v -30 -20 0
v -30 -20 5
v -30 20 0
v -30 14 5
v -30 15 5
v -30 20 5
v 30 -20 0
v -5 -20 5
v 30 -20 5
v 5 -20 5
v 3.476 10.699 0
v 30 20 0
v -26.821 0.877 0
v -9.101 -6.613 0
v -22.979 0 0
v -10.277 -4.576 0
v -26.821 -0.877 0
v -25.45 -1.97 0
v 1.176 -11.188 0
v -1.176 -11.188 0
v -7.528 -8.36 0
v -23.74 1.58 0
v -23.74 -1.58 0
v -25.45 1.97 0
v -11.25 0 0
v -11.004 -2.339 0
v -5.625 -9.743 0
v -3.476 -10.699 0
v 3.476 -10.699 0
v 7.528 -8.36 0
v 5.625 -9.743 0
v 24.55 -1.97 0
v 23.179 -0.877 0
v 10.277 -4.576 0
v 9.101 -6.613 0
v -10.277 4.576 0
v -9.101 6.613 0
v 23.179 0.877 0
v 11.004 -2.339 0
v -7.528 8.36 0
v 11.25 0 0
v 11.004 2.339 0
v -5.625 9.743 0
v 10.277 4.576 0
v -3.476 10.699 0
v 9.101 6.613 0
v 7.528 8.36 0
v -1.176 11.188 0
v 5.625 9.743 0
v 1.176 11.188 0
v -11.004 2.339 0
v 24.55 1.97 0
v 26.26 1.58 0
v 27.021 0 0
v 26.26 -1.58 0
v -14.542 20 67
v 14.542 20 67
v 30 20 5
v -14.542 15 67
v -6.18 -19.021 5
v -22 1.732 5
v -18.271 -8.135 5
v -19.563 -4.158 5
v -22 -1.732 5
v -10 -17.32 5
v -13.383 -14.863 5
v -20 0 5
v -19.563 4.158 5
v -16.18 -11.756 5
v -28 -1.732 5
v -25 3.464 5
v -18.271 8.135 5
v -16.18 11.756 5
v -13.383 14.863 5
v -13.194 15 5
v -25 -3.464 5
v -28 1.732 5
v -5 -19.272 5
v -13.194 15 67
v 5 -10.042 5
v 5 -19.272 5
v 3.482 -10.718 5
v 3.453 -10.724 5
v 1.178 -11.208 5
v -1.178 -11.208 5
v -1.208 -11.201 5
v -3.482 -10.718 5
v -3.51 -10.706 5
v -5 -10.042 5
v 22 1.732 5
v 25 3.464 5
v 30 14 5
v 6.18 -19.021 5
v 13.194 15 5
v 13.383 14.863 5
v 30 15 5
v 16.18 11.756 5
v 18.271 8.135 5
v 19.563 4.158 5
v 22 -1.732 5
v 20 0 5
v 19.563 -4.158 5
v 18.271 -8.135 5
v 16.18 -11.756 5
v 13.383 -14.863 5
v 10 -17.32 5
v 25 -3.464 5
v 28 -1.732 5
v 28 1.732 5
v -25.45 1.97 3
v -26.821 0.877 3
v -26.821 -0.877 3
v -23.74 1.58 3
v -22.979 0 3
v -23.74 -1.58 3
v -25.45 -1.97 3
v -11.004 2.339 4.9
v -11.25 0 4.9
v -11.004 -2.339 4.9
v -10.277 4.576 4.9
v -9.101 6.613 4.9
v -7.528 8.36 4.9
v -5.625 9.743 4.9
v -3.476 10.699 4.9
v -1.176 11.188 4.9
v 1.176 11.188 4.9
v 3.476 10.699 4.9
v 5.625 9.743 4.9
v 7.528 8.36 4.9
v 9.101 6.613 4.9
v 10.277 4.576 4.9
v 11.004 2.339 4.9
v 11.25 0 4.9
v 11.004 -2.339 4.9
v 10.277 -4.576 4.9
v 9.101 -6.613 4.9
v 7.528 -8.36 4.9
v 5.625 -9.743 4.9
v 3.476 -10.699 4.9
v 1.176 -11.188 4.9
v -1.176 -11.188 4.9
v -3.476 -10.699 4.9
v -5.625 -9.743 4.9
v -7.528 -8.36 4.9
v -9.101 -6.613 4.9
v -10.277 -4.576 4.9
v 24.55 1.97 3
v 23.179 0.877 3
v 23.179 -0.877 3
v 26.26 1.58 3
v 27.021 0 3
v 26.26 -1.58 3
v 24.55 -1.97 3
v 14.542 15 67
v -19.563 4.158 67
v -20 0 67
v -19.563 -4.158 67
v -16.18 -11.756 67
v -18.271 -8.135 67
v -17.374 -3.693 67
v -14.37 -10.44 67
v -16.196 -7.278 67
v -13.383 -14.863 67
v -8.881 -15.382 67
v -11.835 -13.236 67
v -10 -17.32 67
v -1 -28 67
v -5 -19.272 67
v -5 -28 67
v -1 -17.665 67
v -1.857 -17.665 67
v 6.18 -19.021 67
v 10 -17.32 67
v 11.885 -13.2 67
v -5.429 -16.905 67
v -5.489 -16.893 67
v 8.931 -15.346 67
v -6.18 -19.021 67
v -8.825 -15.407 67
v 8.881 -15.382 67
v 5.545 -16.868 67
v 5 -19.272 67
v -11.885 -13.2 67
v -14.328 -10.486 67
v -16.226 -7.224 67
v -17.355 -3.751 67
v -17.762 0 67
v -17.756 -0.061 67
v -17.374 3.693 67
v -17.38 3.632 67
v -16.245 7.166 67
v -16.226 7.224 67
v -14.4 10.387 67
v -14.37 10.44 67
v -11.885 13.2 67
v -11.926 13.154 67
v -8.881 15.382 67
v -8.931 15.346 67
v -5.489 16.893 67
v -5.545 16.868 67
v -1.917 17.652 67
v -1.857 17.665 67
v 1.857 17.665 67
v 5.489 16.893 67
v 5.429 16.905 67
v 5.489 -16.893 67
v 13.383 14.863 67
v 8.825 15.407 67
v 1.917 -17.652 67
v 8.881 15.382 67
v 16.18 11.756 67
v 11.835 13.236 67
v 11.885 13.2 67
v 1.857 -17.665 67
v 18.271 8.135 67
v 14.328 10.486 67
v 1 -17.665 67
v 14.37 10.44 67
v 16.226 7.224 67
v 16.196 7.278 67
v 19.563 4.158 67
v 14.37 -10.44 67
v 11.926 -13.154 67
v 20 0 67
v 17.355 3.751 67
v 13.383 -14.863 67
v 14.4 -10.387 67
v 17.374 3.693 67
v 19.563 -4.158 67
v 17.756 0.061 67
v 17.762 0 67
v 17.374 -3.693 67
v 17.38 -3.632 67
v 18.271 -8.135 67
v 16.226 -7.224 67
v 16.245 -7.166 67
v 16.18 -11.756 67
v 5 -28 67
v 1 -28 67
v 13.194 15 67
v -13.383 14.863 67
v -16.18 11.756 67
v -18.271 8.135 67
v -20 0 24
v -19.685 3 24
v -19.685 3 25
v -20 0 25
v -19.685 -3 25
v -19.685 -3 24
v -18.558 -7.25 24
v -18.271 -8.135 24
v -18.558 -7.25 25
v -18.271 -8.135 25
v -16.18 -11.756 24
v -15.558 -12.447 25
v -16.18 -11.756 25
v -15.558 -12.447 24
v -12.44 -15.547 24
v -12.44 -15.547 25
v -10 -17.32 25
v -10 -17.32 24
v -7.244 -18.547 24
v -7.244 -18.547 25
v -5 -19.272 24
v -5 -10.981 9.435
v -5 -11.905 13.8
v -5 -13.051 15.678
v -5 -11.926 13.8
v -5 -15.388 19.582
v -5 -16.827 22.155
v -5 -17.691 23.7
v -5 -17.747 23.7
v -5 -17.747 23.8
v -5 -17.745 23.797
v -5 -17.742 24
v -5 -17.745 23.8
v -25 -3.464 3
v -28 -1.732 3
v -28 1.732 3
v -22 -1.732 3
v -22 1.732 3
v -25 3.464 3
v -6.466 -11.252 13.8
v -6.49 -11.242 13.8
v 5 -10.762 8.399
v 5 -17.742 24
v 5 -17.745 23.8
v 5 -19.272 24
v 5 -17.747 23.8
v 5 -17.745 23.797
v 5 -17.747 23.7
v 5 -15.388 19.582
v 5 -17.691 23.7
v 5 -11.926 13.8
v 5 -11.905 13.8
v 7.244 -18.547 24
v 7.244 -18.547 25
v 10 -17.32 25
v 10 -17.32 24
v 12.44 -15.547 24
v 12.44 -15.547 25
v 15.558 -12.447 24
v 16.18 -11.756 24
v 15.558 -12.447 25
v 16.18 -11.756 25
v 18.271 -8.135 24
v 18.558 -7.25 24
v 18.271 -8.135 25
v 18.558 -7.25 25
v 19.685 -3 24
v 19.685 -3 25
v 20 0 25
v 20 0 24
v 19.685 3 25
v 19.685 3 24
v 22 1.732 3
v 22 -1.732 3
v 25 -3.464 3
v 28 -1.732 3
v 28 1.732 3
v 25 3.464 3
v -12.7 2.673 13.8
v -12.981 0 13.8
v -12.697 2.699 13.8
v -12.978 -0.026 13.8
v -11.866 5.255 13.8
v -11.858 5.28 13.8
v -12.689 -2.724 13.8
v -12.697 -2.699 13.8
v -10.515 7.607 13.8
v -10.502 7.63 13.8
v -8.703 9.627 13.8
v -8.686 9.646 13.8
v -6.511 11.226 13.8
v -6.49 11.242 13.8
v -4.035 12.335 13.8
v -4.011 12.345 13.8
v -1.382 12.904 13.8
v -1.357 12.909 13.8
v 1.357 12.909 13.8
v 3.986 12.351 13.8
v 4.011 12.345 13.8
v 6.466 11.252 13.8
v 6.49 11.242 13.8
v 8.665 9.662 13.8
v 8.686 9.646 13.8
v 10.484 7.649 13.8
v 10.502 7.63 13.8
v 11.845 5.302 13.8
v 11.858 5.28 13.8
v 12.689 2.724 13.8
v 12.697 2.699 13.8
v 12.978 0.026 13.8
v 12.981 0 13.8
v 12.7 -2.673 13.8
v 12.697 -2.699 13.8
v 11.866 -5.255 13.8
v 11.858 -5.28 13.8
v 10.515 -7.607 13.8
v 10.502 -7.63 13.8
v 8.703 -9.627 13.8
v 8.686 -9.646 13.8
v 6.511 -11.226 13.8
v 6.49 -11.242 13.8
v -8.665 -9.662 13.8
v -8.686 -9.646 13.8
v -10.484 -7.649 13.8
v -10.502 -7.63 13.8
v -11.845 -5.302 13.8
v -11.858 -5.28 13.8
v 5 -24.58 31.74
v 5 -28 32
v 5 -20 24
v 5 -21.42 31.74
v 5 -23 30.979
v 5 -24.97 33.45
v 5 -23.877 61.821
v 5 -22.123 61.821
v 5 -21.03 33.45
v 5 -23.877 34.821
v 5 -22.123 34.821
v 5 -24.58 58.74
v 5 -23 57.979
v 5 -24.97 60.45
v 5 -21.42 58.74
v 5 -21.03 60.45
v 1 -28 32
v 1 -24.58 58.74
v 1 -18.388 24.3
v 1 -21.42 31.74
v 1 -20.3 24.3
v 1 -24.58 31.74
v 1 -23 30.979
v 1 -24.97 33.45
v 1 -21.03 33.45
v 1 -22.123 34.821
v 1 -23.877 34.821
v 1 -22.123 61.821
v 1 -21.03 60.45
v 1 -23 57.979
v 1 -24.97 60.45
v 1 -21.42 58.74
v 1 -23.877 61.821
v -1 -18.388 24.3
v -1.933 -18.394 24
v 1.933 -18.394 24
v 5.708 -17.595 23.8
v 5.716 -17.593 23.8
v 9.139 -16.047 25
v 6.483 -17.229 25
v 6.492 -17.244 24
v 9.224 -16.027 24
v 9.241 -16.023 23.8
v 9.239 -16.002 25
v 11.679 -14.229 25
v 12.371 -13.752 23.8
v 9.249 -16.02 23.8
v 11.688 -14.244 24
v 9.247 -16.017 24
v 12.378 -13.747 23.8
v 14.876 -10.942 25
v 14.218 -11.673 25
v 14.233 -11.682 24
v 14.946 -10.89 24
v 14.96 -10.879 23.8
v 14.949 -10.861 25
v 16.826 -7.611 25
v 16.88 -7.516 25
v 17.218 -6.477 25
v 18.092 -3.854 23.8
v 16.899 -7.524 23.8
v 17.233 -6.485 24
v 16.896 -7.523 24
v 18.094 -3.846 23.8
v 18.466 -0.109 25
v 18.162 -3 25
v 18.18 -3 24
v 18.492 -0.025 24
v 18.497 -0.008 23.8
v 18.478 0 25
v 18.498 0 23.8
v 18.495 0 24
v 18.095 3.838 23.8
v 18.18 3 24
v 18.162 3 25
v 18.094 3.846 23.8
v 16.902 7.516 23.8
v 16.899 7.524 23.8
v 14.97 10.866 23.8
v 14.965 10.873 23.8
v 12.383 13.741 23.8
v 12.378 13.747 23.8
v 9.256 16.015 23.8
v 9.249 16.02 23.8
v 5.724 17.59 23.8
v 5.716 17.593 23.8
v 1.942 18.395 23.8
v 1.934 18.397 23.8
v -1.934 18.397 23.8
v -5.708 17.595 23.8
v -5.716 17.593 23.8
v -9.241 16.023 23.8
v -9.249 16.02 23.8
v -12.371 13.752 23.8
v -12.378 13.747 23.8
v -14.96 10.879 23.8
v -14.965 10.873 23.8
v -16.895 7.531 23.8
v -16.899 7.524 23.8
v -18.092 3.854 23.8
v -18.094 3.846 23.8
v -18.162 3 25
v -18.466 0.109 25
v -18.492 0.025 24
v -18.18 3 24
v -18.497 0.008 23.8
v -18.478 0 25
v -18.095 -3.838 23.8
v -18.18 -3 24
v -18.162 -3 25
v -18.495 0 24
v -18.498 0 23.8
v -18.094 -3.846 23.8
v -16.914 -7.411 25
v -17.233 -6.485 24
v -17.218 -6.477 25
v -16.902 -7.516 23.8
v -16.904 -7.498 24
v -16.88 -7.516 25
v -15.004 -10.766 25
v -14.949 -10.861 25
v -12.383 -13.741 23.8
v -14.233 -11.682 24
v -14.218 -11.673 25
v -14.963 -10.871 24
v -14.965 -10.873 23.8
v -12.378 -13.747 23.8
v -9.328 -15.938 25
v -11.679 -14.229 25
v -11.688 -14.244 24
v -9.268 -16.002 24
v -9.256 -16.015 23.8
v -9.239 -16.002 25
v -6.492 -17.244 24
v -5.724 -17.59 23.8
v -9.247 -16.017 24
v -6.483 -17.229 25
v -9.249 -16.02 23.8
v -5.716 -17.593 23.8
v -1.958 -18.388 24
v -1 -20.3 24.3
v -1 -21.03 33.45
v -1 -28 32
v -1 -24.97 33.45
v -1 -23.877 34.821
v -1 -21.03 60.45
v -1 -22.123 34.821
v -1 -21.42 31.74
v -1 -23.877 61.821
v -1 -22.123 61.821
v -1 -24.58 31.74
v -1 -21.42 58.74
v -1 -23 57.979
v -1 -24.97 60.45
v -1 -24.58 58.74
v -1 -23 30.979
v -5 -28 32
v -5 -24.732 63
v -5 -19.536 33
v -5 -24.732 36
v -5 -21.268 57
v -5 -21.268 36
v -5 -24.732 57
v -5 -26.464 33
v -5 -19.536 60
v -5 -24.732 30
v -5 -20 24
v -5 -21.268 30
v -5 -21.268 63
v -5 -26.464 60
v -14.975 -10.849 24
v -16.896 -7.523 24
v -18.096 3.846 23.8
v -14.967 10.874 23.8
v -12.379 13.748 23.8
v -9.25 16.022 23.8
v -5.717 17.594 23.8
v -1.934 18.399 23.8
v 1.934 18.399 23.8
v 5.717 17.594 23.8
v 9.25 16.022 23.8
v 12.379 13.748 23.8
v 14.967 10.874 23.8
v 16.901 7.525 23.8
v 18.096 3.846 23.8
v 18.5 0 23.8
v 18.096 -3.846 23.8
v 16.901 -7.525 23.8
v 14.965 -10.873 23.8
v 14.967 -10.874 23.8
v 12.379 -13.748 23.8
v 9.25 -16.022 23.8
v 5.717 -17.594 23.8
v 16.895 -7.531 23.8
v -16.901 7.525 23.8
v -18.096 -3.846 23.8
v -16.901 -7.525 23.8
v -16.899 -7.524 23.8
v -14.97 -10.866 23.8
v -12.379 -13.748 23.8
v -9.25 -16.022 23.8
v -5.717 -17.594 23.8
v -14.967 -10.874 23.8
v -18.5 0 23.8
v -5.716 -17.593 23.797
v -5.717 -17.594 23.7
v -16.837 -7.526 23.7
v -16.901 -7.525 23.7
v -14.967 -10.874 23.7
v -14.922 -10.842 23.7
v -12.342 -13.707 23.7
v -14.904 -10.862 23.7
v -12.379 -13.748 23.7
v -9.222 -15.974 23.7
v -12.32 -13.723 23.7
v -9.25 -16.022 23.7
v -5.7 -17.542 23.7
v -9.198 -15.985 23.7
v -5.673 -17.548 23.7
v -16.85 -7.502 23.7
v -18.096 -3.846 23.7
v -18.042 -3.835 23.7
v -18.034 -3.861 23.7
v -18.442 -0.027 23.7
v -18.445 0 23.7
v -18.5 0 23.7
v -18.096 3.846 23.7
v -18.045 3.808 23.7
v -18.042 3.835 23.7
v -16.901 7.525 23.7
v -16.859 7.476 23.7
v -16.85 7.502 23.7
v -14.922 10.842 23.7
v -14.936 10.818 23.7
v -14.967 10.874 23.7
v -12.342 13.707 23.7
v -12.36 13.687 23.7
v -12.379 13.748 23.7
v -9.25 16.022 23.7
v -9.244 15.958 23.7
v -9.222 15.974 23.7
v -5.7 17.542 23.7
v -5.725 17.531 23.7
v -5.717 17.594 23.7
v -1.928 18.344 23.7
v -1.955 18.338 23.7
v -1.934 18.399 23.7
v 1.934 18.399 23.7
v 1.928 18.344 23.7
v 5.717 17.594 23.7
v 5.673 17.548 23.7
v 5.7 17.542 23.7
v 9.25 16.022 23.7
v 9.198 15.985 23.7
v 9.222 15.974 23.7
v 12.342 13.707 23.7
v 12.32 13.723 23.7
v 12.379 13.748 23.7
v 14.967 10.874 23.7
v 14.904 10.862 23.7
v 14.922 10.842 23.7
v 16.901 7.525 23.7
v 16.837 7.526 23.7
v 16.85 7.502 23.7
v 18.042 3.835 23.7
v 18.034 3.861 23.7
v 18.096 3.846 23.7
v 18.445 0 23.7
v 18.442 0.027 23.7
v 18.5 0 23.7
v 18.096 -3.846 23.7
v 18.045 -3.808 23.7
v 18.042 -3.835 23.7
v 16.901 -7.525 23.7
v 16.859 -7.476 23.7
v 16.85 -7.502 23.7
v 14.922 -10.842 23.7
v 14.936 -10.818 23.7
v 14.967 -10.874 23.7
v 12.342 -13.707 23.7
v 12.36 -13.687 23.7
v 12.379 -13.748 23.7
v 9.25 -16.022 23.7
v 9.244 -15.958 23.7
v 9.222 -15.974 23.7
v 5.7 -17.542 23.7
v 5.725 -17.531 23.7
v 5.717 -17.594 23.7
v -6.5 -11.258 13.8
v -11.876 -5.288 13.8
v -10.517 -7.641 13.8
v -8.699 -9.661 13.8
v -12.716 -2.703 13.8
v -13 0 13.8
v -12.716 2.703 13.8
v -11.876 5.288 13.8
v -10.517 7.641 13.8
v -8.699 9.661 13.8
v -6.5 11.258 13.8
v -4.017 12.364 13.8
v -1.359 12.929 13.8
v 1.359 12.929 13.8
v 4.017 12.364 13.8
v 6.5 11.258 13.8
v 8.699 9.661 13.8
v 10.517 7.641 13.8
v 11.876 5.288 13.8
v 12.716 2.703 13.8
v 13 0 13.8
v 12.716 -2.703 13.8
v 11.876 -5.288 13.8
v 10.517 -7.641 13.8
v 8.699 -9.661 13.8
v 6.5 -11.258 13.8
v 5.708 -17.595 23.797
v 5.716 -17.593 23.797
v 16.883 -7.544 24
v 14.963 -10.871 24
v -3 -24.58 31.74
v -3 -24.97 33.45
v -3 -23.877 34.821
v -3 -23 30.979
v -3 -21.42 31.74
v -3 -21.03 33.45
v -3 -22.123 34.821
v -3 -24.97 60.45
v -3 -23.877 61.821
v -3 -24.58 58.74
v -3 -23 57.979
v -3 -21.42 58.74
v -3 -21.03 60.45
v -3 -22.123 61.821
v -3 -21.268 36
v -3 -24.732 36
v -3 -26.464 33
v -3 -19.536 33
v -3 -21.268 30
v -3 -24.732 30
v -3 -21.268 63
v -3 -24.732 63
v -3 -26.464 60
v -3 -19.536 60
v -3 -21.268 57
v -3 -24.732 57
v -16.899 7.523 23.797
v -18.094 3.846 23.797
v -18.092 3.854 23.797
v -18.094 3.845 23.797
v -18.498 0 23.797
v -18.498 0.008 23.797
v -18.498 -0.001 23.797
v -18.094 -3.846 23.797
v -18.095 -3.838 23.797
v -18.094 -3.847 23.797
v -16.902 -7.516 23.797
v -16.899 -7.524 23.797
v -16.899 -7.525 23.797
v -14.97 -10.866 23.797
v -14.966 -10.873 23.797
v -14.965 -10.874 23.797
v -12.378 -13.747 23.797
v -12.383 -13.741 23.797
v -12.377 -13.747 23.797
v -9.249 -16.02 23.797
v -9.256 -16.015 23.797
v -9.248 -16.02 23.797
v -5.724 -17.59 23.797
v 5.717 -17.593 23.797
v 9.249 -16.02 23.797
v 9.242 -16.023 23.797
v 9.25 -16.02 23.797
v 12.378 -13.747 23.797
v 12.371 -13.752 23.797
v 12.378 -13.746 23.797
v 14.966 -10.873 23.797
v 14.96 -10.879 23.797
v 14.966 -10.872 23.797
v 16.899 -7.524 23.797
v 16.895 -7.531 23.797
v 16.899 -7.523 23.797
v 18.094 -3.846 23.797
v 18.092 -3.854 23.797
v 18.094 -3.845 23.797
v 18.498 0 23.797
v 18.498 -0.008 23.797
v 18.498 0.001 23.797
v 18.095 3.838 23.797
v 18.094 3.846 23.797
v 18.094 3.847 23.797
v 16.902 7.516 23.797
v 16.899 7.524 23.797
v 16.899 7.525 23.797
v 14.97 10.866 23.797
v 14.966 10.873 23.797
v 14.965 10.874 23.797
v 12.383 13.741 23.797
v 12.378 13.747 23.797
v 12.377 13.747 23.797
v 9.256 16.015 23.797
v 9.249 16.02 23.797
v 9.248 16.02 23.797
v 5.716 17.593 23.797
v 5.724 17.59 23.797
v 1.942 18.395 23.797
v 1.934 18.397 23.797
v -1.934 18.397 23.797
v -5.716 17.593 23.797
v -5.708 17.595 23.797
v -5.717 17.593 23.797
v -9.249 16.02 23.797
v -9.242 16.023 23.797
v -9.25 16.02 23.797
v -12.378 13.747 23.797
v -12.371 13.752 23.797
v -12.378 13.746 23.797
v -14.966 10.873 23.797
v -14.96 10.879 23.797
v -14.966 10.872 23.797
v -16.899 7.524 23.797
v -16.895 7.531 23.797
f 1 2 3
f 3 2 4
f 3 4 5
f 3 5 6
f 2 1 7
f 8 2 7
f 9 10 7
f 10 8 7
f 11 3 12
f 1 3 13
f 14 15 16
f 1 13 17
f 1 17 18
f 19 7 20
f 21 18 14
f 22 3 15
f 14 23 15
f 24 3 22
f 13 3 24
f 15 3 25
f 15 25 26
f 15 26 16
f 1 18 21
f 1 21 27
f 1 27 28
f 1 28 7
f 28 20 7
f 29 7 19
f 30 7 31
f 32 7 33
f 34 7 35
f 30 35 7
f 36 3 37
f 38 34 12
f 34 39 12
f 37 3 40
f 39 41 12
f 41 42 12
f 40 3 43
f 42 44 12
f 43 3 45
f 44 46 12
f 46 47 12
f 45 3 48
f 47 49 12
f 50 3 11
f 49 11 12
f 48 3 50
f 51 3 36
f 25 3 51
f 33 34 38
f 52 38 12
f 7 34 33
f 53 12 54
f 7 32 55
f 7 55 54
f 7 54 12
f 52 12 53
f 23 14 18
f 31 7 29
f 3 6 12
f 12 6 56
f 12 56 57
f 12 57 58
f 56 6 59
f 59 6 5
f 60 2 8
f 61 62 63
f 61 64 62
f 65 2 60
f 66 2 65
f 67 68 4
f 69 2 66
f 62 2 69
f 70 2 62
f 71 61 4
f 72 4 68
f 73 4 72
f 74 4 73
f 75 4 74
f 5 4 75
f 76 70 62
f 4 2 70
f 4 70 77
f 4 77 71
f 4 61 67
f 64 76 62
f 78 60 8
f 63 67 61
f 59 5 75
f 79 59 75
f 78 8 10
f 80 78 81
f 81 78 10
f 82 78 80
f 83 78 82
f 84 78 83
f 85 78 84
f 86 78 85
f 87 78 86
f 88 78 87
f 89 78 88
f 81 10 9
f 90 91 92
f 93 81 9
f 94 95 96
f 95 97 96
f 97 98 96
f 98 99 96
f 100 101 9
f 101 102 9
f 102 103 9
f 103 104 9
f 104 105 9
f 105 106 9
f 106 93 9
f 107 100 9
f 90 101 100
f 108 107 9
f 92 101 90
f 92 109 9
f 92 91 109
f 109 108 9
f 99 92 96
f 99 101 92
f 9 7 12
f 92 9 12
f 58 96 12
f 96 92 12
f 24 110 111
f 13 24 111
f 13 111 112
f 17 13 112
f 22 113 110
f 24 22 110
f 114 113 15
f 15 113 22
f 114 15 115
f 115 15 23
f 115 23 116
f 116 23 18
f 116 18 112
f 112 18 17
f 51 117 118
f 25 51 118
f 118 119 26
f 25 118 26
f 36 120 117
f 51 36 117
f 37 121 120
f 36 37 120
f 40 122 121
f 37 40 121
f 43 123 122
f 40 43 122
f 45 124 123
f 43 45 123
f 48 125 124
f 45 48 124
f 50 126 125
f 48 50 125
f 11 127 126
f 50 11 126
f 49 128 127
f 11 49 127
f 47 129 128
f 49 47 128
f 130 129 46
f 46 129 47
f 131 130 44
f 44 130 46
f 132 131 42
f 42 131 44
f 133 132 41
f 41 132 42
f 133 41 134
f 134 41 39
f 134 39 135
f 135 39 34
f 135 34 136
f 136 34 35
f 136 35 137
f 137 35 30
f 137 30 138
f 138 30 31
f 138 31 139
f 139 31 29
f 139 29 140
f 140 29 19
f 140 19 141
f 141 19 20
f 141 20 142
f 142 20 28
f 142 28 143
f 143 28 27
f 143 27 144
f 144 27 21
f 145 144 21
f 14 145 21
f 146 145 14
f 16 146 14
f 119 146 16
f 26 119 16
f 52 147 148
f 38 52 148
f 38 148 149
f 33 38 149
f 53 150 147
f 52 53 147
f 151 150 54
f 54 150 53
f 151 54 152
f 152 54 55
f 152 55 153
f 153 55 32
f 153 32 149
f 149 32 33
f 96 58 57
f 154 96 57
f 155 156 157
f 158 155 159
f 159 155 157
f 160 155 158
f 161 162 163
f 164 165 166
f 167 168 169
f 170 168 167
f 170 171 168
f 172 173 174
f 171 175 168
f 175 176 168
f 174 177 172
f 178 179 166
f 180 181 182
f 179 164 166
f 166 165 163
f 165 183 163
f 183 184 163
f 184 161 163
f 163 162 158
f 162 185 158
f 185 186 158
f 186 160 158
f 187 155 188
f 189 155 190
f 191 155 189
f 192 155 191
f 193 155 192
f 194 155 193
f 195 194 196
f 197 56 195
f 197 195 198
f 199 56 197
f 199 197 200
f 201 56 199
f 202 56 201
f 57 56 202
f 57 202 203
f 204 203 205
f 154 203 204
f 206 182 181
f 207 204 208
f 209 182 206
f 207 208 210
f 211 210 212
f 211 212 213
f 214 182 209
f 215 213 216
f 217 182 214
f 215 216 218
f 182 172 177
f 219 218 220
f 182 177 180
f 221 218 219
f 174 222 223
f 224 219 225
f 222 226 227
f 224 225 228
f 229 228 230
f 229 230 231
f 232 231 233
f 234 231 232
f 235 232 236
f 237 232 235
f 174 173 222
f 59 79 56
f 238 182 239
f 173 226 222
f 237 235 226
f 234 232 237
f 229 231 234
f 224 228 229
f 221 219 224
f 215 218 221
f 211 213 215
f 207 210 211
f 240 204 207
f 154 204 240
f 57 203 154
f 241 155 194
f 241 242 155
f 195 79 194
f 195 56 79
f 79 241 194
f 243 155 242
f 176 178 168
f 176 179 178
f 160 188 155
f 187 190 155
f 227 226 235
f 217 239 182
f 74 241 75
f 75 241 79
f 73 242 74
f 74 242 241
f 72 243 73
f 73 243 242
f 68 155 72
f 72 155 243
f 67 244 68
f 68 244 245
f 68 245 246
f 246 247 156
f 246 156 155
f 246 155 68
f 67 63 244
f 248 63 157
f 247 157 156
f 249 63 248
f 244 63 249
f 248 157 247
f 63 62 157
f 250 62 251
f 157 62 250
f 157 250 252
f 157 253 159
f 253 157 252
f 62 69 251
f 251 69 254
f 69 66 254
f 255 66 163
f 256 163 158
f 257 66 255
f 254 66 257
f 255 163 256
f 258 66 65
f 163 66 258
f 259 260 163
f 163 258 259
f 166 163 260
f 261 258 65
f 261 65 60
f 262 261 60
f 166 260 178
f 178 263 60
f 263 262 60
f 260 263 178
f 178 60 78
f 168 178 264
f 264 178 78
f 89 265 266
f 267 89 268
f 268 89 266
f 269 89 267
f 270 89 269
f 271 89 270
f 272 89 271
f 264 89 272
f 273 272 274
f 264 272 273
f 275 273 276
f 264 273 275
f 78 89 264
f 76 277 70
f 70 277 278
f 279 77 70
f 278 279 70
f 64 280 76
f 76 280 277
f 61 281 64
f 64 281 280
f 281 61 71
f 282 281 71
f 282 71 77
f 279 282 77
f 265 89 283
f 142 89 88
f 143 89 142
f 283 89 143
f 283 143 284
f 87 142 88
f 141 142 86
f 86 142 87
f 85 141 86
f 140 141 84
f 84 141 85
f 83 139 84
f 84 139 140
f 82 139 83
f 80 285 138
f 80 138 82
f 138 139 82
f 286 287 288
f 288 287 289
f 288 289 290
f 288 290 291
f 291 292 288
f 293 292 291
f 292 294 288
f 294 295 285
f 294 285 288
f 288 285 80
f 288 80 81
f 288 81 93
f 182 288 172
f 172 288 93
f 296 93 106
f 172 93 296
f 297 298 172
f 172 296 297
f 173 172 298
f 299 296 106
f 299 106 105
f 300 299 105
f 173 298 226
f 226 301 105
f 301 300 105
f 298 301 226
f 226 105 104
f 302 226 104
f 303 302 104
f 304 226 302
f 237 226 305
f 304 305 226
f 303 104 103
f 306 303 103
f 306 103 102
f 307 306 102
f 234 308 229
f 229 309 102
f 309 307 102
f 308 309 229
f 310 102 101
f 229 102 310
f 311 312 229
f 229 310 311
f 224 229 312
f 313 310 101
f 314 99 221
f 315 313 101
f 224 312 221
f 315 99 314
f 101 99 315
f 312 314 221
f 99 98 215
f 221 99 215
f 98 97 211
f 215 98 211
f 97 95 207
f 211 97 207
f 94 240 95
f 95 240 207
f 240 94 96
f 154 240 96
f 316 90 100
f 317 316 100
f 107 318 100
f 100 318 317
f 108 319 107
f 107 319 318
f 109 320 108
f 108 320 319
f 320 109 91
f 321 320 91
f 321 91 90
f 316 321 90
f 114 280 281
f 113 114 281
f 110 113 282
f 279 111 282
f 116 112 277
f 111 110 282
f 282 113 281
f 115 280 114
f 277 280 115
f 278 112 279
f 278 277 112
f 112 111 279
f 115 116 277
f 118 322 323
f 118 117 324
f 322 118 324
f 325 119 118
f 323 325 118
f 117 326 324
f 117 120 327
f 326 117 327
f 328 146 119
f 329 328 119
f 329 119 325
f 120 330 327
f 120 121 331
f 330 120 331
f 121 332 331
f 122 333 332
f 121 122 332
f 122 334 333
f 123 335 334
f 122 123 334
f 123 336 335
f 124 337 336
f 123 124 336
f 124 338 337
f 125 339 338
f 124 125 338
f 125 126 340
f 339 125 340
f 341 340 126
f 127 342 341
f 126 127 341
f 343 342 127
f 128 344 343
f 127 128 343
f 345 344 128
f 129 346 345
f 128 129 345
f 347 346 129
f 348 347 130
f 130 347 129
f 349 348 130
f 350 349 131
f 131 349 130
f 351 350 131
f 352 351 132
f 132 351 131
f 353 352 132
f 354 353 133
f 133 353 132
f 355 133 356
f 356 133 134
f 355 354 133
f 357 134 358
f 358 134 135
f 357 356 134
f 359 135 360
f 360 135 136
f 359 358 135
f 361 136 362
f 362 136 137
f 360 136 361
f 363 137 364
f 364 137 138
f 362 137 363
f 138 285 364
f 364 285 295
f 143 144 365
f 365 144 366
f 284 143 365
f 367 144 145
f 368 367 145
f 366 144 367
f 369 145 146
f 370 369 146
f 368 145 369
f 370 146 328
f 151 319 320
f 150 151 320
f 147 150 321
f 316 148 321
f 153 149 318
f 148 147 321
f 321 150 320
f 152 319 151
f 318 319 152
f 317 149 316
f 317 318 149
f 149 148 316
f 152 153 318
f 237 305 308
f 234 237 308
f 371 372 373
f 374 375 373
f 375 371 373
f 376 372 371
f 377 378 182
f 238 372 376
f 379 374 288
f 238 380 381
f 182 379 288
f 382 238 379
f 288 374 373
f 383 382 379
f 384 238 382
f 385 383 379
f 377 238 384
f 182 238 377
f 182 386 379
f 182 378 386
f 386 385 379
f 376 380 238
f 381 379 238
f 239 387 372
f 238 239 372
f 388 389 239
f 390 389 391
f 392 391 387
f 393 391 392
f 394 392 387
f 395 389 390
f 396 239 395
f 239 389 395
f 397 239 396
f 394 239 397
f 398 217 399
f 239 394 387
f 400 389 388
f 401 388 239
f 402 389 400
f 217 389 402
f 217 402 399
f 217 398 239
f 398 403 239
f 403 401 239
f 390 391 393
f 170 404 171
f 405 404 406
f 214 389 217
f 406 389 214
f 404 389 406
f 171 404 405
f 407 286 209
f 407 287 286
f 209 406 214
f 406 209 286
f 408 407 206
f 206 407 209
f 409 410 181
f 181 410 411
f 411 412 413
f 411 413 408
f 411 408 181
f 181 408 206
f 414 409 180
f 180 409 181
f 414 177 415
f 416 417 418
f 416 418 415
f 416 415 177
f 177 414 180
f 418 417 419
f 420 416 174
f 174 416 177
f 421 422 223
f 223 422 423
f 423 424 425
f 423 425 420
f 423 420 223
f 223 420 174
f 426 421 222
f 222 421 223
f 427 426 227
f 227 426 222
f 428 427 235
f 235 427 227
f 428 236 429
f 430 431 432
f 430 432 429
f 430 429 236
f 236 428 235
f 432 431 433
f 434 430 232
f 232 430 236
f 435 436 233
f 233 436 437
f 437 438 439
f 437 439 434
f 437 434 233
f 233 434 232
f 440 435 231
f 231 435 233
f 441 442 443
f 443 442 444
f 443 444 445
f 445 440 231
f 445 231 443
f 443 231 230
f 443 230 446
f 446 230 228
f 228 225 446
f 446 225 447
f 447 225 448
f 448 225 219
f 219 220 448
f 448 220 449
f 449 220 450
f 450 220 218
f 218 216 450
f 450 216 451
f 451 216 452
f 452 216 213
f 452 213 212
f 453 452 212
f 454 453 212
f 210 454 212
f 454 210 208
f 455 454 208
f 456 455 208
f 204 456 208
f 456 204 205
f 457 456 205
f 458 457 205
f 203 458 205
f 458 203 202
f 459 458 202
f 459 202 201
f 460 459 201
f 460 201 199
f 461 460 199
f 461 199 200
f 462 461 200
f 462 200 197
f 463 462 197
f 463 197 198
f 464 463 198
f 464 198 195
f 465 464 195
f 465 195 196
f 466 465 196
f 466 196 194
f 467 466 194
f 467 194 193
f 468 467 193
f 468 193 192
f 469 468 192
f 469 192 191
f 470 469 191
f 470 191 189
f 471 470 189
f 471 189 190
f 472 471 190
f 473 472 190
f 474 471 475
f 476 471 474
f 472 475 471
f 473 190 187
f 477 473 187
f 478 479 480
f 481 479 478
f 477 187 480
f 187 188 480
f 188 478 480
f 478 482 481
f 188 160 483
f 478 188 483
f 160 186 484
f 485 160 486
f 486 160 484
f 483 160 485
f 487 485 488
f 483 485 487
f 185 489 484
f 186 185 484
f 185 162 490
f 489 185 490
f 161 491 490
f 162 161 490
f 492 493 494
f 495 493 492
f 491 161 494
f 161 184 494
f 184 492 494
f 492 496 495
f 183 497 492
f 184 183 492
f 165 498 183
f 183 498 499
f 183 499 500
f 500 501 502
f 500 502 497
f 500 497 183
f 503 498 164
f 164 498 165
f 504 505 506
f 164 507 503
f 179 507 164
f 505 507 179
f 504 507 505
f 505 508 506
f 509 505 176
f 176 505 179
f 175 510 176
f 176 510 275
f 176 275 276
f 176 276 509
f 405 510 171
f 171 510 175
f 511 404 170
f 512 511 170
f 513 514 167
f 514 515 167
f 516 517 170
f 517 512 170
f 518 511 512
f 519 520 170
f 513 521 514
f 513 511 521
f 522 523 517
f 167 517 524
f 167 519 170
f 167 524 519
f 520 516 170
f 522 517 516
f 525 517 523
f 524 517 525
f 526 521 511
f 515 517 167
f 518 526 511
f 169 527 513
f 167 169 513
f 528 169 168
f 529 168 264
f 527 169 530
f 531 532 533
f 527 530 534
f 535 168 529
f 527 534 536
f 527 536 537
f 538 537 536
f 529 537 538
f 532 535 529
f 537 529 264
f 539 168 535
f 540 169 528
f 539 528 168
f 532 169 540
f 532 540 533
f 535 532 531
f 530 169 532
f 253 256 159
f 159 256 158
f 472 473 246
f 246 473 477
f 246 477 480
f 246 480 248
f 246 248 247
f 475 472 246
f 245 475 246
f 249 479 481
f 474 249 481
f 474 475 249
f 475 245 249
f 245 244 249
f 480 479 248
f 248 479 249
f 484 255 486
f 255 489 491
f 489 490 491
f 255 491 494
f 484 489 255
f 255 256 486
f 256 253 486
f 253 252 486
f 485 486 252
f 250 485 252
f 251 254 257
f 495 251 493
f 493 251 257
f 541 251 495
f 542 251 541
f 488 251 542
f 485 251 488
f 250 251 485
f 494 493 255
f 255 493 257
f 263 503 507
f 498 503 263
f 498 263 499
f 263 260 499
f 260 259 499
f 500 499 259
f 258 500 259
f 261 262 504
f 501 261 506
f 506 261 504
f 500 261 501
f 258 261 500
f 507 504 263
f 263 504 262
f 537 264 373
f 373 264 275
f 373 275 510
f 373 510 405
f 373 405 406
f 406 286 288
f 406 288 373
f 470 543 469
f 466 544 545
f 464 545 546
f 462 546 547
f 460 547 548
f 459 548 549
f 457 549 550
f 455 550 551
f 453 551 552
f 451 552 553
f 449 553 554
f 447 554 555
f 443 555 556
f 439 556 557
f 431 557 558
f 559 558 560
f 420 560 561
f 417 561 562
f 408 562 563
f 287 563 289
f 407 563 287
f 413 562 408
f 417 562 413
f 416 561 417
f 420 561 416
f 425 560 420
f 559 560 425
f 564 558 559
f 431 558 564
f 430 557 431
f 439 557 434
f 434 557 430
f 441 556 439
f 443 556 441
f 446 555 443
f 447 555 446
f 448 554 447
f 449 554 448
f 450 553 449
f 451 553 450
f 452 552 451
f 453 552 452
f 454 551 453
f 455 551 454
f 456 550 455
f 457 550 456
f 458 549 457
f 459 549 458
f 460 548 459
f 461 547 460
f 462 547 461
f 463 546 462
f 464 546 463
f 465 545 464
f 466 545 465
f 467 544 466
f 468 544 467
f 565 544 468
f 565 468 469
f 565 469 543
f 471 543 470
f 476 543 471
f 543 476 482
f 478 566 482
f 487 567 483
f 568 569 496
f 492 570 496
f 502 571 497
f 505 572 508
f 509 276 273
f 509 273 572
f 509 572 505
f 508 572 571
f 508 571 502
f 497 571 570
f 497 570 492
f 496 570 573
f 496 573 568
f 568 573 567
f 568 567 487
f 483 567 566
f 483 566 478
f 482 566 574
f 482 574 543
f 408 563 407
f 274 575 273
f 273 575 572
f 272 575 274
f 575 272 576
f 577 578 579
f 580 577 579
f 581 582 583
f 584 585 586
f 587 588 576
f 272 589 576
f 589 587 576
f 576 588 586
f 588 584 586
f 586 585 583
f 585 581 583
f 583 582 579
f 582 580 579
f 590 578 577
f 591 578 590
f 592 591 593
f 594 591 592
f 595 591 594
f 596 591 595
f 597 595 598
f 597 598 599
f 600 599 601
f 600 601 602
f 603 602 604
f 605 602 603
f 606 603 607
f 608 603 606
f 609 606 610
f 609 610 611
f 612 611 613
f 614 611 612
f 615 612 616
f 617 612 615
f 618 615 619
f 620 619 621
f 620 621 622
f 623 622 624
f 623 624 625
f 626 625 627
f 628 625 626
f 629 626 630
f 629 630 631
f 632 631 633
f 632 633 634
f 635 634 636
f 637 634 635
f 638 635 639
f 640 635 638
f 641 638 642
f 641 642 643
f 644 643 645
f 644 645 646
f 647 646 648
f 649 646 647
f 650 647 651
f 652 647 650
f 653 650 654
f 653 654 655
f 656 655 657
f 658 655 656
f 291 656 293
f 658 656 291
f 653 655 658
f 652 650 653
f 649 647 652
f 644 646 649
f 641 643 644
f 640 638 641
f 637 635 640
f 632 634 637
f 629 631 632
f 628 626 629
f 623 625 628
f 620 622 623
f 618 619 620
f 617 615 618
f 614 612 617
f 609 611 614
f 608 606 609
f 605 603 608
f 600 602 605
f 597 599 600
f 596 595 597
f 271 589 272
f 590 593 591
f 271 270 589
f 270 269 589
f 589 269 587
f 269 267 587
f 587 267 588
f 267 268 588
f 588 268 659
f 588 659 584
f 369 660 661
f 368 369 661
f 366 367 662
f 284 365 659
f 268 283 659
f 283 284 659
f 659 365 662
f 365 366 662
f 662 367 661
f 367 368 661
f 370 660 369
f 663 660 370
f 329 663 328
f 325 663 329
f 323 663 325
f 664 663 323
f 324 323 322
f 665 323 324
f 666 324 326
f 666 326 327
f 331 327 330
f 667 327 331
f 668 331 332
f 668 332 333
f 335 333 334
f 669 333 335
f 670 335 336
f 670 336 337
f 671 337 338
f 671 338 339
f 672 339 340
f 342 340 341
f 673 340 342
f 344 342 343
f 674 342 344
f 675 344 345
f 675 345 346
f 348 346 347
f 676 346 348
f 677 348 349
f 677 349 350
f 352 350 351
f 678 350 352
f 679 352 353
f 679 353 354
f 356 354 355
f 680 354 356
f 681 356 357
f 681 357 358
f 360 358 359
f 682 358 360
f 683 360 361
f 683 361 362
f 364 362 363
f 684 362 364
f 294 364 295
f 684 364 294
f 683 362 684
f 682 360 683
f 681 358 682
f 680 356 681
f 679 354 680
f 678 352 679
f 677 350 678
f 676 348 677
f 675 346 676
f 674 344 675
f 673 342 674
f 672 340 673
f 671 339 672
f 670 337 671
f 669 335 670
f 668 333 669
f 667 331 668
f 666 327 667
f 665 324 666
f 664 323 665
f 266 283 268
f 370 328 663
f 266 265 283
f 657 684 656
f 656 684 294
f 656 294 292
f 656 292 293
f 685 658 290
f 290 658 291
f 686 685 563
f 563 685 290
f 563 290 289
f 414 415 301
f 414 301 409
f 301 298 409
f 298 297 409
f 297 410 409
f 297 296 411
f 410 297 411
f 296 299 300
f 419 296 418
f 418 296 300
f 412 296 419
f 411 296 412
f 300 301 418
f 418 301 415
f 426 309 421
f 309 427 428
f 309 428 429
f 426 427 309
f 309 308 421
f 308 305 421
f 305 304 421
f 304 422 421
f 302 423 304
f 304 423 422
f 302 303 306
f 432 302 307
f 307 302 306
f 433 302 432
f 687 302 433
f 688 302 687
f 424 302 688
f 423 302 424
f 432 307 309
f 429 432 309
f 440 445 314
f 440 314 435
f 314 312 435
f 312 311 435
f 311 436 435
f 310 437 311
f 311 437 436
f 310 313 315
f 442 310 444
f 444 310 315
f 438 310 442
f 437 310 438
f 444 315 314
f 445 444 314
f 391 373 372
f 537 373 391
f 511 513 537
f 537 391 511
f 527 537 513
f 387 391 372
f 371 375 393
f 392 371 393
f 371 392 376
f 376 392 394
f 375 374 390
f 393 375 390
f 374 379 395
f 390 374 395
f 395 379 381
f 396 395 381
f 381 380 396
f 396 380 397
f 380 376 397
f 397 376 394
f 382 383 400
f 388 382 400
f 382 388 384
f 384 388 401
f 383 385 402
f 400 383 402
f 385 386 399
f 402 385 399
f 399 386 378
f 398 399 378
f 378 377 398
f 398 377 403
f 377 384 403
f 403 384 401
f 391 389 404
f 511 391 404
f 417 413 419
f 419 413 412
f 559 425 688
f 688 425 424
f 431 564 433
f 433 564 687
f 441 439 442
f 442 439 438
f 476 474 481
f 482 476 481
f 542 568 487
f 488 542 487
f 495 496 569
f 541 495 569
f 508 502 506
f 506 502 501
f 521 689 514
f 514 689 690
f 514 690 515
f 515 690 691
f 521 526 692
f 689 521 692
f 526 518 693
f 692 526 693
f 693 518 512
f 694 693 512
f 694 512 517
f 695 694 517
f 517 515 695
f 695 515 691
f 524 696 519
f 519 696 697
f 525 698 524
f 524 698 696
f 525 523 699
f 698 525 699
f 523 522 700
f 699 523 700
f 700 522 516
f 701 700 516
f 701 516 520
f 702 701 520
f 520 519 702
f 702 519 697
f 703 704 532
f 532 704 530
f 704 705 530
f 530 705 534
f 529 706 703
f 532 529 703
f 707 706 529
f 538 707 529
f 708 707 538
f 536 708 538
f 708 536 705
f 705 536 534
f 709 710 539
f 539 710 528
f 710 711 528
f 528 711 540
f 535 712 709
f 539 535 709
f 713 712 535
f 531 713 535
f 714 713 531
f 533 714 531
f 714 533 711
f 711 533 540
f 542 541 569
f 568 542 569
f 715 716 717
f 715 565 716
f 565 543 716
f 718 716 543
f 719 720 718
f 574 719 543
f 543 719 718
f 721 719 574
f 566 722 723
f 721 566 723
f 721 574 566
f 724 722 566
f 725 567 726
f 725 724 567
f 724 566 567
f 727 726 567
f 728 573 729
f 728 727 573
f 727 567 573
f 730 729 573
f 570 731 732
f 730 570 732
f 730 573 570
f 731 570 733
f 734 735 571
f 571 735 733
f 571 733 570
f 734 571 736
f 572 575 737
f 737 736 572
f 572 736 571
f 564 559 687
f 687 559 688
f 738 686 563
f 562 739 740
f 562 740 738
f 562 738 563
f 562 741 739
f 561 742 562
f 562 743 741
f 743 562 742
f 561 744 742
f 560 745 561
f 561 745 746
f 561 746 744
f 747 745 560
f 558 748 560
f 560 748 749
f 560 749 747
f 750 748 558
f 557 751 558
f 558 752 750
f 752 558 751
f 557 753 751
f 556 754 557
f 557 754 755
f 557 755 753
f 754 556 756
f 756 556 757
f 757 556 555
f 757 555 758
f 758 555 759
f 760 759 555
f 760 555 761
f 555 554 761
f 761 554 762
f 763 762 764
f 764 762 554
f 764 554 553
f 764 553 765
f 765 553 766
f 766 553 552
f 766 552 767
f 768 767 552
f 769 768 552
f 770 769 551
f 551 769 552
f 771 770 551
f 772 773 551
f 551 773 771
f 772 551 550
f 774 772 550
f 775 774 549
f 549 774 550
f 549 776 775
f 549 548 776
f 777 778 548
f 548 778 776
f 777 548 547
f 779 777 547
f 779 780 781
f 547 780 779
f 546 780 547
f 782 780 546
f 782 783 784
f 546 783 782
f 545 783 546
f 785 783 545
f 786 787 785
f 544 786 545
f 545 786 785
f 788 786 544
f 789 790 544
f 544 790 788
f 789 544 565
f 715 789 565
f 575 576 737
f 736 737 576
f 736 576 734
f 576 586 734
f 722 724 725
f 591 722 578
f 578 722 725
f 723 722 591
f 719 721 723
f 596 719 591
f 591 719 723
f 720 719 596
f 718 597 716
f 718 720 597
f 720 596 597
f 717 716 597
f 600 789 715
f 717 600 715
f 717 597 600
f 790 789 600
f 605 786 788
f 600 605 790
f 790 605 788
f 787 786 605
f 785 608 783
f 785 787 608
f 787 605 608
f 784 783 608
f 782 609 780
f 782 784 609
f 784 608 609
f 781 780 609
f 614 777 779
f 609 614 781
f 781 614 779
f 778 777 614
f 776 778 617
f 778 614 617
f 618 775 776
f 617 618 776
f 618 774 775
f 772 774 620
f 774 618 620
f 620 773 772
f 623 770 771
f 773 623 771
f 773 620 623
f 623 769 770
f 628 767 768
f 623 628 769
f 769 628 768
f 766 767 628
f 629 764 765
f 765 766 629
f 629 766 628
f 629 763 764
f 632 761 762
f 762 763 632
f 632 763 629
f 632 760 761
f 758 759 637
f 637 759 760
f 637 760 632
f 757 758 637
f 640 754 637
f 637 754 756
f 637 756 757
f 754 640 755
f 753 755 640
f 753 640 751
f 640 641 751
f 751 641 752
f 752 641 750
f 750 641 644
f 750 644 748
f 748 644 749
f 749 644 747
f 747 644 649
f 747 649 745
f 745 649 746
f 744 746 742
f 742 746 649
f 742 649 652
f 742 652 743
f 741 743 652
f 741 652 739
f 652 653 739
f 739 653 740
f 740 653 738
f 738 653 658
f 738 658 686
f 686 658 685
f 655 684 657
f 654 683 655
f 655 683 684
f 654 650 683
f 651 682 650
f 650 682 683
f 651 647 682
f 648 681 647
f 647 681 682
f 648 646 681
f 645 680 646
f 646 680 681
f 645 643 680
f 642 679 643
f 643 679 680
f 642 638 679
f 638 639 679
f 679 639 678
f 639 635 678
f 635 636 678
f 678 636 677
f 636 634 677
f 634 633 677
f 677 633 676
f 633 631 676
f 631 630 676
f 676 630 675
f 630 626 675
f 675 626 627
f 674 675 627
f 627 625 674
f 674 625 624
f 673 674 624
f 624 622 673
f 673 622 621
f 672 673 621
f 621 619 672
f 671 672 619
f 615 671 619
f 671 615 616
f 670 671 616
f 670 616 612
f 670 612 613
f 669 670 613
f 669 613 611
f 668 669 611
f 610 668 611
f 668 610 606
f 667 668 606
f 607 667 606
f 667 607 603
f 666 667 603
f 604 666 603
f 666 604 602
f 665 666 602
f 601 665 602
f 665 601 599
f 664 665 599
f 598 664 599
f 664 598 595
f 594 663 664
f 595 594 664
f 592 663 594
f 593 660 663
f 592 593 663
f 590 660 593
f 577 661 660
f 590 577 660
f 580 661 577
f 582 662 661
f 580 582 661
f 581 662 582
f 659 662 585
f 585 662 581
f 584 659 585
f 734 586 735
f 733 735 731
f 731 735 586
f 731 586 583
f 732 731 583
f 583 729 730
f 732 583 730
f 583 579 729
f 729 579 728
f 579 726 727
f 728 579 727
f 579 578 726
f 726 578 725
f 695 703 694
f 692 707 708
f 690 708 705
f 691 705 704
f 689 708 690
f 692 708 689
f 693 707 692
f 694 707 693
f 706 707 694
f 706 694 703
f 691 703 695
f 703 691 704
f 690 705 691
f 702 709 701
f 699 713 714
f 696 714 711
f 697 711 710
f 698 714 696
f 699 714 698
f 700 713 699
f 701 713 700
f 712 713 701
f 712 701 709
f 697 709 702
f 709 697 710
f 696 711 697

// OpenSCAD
// drilling head
// for hobby model Bionic AD-19
// 12V DC; 500mA; 12,000rpm

difference() {
	union() {
		cylinder(h=67, r=20);
		translate([-30,-20,0]) cube([60,40,5]);
		translate([-30,15,0]) cube([60,5,67]);
		translate([-5,-28,24]) cube([10,28,43]);
	}

	inner_shape_of_drill();	

	for(i=[-25,25]) {
		translate([i,0,-1]) cylinder(h=10, r=3.5/2/cos(30));
		translate([i,0,3]) rotate([0,0,90]) cylinder(h=10, r=6/2/cos(30), $fn=6);
	}

	for(i=[33,60]) {
		translate([-10,-23,i]) rotate([0,90,0]) cylinder(h=20, r=3.5/2/cos(30));
		translate([-10,-23,i]) rotate([90,0,90]) cylinder(h=7, r=6/2/cos(30), $fn=6);
	}

	for(i=[-1,1]) {
		translate([i*30,14,5]) rotate([0,-45+i*31,0]) cube([100,10,100]);
	}

	translate([-6,-20,24]) rotate([135,0,0]) cube([12,15,15]);
	
}

module inner_shape_of_drill() {
	union() {
		translate([0,0,-1]) cylinder(h=8-2,r=22.5/2);
		translate([0,0,4.9]) cylinder(h=9,r1=22.5/2,r2=26/2);
		translate([0,0,13.8]) cylinder(h=10,r1=26/2,r2=37/2);
		translate([0,0,23.7]) cylinder(h=44,r1=37/2,r2=35.5/2);
		translate([-5,-30,5]) cube([10,30,19]);
		translate([-1,-30,24.3]) cube([2,30,70]);
		for(i=[0,1,2,4,5,6]) {
			rotate([0,0,-i*30]) translate([0,-3,24]) cube([30,6,1]);
		}
	}
}
